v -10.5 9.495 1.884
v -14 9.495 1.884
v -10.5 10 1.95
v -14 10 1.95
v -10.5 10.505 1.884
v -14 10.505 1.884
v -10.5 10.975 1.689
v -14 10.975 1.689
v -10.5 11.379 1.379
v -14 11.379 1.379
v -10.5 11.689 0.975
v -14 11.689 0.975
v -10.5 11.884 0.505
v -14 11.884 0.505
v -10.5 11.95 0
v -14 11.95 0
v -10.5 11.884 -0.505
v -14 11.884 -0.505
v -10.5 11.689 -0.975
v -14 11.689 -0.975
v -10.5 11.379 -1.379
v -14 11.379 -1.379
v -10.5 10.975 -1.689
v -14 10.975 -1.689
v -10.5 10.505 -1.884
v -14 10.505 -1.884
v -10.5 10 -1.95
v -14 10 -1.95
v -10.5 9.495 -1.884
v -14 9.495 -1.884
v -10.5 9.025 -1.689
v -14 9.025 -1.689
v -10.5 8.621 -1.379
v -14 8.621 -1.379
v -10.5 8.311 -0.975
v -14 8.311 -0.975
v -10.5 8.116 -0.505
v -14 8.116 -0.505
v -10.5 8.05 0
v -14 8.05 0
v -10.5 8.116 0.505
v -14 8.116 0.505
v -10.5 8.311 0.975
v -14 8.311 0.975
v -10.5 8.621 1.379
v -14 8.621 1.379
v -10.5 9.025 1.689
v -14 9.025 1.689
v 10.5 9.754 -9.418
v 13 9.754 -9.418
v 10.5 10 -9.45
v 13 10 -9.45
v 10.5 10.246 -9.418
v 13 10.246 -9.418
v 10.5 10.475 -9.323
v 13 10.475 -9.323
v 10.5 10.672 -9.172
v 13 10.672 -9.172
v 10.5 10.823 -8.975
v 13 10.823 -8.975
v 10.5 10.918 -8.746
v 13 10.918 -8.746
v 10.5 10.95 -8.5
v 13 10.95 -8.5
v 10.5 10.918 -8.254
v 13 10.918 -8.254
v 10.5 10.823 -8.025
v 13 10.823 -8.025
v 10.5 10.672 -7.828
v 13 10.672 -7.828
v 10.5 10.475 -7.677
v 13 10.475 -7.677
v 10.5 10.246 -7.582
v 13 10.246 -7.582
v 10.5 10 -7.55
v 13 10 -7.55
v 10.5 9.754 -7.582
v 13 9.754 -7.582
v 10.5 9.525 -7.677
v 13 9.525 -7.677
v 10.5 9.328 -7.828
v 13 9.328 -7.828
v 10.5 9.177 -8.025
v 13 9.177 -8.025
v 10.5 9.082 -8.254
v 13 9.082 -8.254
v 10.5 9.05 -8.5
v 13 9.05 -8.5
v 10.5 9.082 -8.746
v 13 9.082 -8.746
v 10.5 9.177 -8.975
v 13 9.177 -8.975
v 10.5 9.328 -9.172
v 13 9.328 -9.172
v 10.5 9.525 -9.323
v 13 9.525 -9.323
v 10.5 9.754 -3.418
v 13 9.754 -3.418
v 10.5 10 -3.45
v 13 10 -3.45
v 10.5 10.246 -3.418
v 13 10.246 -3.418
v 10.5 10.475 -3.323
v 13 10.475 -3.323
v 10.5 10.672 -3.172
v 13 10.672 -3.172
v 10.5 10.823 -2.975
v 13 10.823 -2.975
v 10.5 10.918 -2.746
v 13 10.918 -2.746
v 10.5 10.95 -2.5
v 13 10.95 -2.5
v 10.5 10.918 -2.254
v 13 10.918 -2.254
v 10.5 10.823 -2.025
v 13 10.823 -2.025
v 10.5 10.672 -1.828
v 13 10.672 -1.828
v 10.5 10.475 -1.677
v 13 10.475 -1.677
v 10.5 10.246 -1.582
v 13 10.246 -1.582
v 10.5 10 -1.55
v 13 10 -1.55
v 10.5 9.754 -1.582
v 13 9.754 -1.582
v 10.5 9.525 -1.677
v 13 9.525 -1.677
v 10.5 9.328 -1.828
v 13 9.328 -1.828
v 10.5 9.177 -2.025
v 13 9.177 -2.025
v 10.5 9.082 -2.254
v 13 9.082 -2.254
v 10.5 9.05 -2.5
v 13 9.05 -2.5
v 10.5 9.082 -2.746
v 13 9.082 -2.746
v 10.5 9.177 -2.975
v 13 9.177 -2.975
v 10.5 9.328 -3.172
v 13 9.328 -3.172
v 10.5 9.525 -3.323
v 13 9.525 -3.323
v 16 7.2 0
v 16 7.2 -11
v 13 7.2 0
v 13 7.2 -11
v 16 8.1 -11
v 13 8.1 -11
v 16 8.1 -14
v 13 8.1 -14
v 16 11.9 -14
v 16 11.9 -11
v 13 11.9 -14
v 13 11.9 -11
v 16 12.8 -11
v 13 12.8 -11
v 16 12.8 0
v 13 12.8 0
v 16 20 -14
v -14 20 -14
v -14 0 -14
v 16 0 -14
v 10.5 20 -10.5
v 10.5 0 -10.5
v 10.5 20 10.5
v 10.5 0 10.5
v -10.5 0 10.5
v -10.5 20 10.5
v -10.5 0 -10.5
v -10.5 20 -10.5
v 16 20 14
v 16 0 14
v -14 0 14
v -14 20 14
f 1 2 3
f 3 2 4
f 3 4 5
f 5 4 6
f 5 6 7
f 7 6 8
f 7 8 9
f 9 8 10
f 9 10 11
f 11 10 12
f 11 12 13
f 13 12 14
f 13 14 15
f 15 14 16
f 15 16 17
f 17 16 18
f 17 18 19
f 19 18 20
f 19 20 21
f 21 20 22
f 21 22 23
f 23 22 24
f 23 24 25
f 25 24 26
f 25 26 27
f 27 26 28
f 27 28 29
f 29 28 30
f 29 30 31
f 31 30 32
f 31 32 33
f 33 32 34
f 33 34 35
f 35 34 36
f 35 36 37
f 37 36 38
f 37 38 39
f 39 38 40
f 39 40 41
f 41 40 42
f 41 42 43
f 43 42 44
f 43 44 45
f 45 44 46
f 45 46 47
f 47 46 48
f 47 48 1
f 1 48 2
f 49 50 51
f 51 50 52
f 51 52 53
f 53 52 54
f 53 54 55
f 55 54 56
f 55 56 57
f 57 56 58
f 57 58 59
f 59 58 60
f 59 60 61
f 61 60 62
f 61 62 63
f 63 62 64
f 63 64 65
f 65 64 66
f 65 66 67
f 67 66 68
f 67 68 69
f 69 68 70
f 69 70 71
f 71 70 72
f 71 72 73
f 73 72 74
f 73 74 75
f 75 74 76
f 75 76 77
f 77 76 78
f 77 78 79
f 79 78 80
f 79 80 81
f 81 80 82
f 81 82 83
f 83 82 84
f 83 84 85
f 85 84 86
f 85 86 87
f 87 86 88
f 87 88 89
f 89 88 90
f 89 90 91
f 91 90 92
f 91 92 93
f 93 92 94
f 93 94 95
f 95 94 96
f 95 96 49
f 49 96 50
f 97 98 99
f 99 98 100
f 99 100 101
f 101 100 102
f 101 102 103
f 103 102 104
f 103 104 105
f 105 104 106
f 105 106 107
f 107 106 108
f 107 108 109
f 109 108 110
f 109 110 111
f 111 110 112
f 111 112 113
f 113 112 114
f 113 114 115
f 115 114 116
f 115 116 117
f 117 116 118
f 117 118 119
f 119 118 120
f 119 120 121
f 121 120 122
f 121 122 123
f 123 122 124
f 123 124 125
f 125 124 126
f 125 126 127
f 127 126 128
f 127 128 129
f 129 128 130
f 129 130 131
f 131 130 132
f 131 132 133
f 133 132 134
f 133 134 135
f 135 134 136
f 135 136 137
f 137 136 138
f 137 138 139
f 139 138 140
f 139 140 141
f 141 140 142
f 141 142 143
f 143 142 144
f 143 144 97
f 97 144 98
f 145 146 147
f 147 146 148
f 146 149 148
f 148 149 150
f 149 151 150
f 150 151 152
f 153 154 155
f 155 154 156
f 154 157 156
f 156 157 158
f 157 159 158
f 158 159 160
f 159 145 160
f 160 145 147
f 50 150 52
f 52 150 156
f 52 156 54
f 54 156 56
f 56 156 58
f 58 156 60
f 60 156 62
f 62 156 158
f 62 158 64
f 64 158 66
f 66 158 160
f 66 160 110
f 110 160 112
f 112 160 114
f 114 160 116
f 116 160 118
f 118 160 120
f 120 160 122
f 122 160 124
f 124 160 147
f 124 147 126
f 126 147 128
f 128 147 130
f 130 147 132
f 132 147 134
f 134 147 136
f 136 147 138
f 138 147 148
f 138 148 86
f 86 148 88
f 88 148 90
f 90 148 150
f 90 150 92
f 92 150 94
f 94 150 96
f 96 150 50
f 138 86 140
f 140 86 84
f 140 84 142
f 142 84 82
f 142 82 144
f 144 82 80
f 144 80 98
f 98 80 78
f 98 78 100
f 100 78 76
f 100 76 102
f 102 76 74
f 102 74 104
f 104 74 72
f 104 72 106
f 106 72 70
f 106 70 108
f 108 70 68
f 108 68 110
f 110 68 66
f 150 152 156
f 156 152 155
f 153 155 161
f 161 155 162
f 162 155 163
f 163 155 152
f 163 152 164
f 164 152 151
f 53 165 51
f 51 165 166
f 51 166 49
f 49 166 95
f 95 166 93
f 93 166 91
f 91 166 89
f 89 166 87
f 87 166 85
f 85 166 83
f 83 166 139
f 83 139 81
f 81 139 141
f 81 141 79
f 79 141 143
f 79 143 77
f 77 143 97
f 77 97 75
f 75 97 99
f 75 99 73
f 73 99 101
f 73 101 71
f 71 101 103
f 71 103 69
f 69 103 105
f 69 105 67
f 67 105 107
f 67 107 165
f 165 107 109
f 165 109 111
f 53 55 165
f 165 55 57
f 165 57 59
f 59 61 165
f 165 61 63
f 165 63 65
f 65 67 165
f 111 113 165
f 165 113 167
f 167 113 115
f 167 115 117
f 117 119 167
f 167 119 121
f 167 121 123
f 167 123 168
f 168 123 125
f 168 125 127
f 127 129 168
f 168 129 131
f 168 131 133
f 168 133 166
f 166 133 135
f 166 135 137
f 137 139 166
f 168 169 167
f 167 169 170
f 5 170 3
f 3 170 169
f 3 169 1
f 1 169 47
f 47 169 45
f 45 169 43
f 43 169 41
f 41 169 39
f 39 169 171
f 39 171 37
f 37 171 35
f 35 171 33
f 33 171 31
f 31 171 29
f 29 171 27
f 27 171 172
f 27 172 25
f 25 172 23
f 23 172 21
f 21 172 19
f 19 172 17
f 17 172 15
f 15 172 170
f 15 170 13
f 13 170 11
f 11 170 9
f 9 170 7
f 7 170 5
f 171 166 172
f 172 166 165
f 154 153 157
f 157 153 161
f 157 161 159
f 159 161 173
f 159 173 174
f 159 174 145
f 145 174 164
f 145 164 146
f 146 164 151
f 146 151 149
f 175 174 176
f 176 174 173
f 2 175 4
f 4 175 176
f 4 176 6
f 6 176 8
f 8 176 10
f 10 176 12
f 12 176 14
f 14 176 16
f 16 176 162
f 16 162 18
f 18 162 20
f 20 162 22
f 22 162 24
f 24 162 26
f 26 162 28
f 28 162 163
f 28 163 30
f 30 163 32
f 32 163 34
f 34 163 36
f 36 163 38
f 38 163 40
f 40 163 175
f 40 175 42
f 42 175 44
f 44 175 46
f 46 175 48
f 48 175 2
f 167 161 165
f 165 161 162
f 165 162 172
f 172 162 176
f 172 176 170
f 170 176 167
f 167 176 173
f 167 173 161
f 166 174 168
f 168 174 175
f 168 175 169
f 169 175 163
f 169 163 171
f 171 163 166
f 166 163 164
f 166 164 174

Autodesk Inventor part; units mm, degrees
ref_plane "YZ Plane" through (0, 0, 0) normal (1, 0, 0) x (0, 1, 0)
ref_plane "XZ Plane" through (0, 0, 0) normal (0, 1, 0) x (-1, 0, 0)
ref_plane "XY Plane" through (0, 0, 0) normal (0, 0, 1) x (1, 0, 0)
sketch "Sketch1" plane through (0, 0, 0) normal (0, 1, 0) x (-1, 0, 0)
  line L0 (-10.5, -10.5) -> (10.5, -10.5)
  line L1 (10.5, -10.5) -> (10.5, 10.5)
  line L2 (10.5, 10.5) -> (-10.5, 10.5)
  line L3 (-10.5, 10.5) -> (-10.5, -10.5)
  line L4 (-10.5, -10.5) -> (10.5, 10.5) construction
  line L5 (10.5, -10.5) -> (-10.5, 10.5) construction
  line L6 (-14, -14) -> (14, -14)
  line L7 (14, -14) -> (14, 14)
  line L8 (14, 14) -> (-14, 14)
  line L9 (-14, -14) -> (14, 14) construction
  line L10 (14, -14) -> (-14, 14) construction
  line L11 (-14, 14) -> (-16, 14)
  line L12 (-14, -14) -> (-16, -14)
  line L13 (-16, -14) -> (-16, 14)
  line L14 (-14, 14) -> (-14, 10.5)
  line L15 (-14, -10.5) -> (-14, -14)
  point P0 (0, 0)
  dimension "d0" = 21
  dimension "d1" = 21
  dimension "d2" = 28
  dimension "d3" = 28
  dimension "d6" = 2
extrude "Extrusion1" add sketch "Sketch1" along normal blind 20
sketch "Sketch3" plane through (16, 0, 14) normal (1, 0, 0) x (0, 0, -1)
  line L0 (28, 0) -> (28, 20) projected
  line L1 (28, 10) -> (0, 10) construction
  line L2 (0, 0) -> (0, 20) projected
  line L3 (14, 10) -> (14, 12.8)
  line L4 (14, 12.8) -> (25, 12.8)
  line L5 (14, 10) -> (14, 7.2)
  line L6 (14, 7.2) -> (25, 7.2)
  line L7 (28, 11.9) -> (25, 11.9)
  line L8 (25, 8.1) -> (28, 8.1)
  line L9 (25, 11.9) -> (25, 12.8)
  line L10 (25, 8.1) -> (25, 7.2)
  point P0 (14, 0)
  dimension "d7" = 2.8
  dimension "d8" = 2.8
  dimension "d10" = 3
  dimension "d24" = 1.9
  dimension "d25" = 1.9
extrude "Extrusion2" cut sketch "Sketch3" against normal blind 3
sketch "Sketch4" plane through (13, 0, 14) normal (1, 0, 0) x (0, 0, -1)
  line L0 (28, 11.9) -> (28, 8.1) projected
  line L1 (28, 10) -> (14, 10) construction
  circle A0 centre (22.5, 10) radius 0.95
  circle A1 centre (16.5, 10) radius 0.95
  line L2 (14, 7.2) -> (14, 12.8) projected
  point P0 (14, 0)
  dimension "d14" = 1.9
  dimension "d15" = 1.9
  dimension "d16" = 6
  dimension "d22" = 2.5
extrude "Extrusion3" cut sketch "Sketch4" against normal blind 3
sketch "Sketch5" plane through (-14, 0, -14) normal (-1, 0, 0) x (0, 0, 1)
  line L0 (14, 7.2) -> (14, 12.8) projected
  circle A0 centre (14, 10) radius 1.95
  point P0 (14, 0)
  dimension "d19" = 3.9
extrude "Extrusion4" cut sketch "Sketch5" against normal blind 4
properties part number "holder"
